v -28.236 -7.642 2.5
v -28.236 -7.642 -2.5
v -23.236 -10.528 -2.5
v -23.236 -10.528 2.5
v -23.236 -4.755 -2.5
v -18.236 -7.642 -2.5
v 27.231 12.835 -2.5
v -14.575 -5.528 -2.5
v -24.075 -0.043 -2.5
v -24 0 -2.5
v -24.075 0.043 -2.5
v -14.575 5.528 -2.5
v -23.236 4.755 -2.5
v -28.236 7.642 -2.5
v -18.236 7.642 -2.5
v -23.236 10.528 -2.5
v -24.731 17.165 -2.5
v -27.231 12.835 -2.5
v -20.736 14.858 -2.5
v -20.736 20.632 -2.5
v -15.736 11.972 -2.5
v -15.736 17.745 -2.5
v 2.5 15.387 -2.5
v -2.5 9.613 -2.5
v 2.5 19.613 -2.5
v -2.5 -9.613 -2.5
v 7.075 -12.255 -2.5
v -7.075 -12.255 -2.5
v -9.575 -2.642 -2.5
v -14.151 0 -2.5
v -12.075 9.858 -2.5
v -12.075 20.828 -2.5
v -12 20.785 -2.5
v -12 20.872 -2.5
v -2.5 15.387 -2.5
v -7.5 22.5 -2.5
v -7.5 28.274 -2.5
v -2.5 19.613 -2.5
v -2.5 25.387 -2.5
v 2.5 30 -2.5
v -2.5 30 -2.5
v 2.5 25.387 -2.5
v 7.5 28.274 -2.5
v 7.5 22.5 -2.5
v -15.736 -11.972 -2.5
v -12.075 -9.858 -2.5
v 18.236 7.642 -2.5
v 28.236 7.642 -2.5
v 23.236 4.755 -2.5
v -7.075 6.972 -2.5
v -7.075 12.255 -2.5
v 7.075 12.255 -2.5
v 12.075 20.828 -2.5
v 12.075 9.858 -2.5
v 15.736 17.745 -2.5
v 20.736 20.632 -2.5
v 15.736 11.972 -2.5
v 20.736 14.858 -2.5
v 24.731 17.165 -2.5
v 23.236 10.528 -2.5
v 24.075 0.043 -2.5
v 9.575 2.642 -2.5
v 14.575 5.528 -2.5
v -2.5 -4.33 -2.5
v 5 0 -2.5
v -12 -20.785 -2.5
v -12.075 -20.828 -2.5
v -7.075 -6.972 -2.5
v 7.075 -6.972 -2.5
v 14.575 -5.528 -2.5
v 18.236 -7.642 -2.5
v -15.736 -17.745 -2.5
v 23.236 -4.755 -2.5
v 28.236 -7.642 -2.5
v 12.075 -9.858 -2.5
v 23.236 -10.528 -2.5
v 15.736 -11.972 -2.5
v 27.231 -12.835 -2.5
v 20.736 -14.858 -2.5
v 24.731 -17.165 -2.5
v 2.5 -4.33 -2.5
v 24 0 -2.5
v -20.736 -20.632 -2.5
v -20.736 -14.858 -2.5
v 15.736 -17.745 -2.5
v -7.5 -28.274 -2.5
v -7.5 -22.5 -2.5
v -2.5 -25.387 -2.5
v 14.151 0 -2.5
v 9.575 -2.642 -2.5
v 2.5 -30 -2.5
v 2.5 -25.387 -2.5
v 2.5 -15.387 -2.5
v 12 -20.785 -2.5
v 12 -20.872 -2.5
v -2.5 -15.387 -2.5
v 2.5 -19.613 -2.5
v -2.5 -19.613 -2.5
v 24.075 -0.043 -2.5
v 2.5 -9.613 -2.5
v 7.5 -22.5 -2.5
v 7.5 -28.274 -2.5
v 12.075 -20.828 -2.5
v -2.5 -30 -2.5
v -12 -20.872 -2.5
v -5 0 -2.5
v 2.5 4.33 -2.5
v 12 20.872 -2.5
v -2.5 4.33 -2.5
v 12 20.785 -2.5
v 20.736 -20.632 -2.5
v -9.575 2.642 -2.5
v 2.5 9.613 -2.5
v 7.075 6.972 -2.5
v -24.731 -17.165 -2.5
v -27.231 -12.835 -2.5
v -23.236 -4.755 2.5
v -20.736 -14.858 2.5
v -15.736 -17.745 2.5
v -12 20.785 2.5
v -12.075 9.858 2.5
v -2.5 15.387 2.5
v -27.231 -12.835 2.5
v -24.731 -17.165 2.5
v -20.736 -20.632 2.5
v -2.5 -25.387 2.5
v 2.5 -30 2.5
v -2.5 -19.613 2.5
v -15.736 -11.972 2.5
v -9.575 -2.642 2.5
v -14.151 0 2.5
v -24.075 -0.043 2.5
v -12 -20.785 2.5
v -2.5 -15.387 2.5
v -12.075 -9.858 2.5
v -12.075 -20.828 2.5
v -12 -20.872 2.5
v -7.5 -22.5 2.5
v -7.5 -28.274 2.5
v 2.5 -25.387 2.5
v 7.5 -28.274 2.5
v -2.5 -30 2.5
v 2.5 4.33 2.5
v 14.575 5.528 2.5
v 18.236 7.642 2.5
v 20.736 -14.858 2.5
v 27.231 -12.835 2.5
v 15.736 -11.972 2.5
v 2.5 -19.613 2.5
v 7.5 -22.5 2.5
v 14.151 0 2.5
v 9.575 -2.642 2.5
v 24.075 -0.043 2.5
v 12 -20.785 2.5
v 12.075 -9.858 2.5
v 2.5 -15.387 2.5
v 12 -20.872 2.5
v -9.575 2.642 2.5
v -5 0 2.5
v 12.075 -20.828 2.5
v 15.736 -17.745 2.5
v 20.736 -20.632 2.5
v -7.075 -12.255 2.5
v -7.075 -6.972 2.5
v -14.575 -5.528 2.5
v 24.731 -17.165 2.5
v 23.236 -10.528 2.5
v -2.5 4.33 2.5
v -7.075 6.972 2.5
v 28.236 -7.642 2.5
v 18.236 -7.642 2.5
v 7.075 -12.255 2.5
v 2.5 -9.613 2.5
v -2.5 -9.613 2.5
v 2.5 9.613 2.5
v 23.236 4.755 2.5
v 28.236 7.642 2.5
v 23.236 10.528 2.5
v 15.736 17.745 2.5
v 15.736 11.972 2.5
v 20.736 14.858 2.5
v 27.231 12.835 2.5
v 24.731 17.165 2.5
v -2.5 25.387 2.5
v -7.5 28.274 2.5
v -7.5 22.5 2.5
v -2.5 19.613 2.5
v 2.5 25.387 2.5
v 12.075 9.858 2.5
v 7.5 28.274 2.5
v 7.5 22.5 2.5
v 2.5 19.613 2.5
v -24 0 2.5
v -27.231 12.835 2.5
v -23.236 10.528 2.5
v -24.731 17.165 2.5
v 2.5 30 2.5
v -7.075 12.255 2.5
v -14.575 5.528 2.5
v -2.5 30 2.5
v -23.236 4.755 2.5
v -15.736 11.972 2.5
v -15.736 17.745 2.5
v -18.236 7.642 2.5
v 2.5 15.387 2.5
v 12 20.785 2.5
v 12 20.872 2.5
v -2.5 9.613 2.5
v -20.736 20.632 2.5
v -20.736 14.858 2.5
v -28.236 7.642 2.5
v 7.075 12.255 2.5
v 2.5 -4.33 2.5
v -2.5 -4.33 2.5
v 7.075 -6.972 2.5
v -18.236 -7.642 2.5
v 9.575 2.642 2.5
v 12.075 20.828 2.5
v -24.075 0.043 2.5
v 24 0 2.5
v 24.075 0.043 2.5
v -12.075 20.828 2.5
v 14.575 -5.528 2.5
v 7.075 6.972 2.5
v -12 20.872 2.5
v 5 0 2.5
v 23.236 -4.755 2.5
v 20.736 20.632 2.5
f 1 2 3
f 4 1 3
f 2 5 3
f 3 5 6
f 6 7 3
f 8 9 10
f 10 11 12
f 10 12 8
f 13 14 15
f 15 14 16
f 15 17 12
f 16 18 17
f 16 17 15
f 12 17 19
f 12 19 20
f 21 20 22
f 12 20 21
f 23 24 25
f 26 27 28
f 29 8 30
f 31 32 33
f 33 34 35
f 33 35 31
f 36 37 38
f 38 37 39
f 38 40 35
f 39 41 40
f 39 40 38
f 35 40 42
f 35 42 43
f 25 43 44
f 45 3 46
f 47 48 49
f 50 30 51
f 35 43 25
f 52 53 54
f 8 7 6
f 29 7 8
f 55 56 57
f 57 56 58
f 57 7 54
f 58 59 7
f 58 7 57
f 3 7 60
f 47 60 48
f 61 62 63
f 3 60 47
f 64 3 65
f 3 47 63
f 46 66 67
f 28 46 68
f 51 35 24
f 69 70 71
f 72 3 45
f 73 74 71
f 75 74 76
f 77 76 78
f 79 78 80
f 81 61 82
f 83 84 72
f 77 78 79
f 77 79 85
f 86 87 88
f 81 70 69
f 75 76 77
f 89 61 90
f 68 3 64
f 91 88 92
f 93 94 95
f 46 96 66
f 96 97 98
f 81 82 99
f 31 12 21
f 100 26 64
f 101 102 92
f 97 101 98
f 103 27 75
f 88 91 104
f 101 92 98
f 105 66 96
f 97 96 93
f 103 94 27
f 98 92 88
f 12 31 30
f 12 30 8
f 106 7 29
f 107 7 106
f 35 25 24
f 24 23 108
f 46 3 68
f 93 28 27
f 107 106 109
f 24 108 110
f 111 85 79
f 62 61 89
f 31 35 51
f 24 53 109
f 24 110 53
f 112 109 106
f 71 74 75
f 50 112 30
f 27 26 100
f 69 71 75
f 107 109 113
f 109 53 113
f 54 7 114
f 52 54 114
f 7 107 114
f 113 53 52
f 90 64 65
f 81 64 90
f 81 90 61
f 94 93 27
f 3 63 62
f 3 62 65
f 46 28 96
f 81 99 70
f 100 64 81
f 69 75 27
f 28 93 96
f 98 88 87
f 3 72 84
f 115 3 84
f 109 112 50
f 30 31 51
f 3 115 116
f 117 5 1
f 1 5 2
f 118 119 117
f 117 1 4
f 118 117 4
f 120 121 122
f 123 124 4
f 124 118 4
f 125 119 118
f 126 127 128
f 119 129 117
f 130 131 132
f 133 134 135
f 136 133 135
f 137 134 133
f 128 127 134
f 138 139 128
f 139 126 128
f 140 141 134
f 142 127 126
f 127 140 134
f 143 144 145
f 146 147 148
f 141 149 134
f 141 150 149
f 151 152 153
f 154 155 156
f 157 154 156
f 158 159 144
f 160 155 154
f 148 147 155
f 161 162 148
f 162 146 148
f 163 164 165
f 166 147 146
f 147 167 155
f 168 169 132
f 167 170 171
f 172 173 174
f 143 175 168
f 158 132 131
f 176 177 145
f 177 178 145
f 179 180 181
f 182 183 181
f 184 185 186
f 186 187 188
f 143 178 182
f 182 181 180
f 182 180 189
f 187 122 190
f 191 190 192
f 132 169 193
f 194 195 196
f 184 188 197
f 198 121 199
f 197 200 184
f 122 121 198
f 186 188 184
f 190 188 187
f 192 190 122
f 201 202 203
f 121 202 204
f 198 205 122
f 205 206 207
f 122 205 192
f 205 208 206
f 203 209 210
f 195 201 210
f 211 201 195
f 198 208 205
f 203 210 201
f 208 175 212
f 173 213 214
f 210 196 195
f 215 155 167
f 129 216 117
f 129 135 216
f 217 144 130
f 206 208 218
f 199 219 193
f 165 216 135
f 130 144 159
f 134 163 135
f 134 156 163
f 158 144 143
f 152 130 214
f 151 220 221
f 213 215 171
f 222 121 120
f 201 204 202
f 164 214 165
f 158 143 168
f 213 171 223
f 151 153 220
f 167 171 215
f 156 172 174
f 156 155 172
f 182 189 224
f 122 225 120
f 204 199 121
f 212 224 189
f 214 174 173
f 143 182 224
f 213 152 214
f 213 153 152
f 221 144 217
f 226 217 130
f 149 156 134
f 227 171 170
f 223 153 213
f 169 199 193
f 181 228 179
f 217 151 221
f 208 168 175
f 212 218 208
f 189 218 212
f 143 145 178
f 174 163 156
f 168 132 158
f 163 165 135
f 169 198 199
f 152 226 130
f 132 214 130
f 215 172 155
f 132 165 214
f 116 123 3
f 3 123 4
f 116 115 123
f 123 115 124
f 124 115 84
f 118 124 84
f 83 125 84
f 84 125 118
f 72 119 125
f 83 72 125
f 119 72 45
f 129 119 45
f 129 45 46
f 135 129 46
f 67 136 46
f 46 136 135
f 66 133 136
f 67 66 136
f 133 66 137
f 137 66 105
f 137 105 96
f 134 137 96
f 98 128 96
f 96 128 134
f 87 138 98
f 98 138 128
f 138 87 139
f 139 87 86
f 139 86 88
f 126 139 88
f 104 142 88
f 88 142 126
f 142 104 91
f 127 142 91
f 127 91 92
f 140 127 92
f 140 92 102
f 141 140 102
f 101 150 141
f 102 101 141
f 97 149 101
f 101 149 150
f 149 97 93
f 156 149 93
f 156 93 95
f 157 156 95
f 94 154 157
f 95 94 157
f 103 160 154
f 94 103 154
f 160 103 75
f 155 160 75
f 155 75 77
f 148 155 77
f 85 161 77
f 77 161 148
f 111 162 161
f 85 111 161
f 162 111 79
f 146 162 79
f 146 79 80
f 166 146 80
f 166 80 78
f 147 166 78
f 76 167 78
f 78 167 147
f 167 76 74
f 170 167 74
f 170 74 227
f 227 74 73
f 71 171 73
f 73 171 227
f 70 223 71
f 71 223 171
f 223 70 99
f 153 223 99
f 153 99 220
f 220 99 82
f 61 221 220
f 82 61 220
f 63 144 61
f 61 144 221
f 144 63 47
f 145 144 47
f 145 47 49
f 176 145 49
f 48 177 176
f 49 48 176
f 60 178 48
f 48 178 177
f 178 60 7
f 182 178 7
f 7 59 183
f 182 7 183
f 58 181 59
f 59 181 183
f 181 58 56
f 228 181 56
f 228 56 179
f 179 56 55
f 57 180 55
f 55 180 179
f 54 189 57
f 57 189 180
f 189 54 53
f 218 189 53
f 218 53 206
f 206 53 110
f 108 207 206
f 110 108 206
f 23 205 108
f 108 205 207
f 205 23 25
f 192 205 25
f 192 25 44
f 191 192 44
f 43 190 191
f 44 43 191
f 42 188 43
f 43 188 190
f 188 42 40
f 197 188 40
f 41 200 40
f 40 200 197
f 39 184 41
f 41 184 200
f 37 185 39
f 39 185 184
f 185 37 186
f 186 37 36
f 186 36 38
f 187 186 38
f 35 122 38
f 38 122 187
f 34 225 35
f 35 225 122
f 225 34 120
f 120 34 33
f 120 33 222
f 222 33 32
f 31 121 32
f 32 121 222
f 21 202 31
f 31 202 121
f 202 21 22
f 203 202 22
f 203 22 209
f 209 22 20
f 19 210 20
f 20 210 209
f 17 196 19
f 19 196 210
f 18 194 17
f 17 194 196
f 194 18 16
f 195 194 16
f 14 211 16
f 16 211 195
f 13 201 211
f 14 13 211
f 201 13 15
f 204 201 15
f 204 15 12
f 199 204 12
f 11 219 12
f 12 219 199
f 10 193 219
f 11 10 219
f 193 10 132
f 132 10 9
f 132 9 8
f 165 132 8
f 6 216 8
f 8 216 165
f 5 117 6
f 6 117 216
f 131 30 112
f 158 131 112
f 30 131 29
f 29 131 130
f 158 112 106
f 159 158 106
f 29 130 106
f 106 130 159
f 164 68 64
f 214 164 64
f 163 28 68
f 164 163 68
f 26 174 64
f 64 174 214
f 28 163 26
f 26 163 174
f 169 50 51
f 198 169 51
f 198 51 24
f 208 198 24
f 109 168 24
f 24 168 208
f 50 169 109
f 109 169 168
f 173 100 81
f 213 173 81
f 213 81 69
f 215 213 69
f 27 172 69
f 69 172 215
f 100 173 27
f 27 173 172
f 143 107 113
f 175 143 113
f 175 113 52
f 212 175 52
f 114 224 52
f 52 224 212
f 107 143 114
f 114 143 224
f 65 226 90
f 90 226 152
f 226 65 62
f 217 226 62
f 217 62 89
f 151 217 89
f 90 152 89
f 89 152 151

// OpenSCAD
scale( [0.5, 0.5, 0.5] ) {

    union() {
        for( i = [0:5] ) {
            rotate( i*60, [0,0,1]) {
                      
             
             difference() {
                 translate( [-5,45,-5]) {
                        rotate( 60, [0,0,1]) {
                            translate( [-5, -5, 0] ) {
                                cube(size = [10,25,10]);
                            }
                        }
                }
                    
                translate( [-25,45,-6]) {
                    cube(size= [10,40,12]);
                }
             }
             
             difference() {
                translate( [5,45,-5]) {
                        rotate( -60, [0,0,1]) {
                            translate( [-5, -5, 0] ) {
                                cube(size = [10,25,10]);
                            }
                        }
                 }
                    
                translate( [15,45,-6]) {
                    cube(size= [10,40,12]);
                }
             }

                 difference() {
              translate( [-5,25,-5]) {
                        rotate( 60, [0,0,1]) {
                            translate( [-5, -5, 0] ) {
                                cube(size = [10,30,10]);
                            }
                        }
                }
                
                translate( [-34,15,-6]) {
                    cube(size= [10,40,12]);
                }
                
           }
                

            difference() {
              translate( [5,25,-5]) {
                    rotate( -60, [0,0,1]) {
                        translate( [-5, -5, 0] ) {
                            cube(size = [10,30,10]);
                        }
                    }
              }         
             
                 translate( [24,20,-6]) {
                    cube(size= [10,40,12]);
                }
             }
               
               
              

            
                translate( v=[-5,0,-5]) {
                   cube(size = [10,60,10]);
                }
            }
        }

    }
}
